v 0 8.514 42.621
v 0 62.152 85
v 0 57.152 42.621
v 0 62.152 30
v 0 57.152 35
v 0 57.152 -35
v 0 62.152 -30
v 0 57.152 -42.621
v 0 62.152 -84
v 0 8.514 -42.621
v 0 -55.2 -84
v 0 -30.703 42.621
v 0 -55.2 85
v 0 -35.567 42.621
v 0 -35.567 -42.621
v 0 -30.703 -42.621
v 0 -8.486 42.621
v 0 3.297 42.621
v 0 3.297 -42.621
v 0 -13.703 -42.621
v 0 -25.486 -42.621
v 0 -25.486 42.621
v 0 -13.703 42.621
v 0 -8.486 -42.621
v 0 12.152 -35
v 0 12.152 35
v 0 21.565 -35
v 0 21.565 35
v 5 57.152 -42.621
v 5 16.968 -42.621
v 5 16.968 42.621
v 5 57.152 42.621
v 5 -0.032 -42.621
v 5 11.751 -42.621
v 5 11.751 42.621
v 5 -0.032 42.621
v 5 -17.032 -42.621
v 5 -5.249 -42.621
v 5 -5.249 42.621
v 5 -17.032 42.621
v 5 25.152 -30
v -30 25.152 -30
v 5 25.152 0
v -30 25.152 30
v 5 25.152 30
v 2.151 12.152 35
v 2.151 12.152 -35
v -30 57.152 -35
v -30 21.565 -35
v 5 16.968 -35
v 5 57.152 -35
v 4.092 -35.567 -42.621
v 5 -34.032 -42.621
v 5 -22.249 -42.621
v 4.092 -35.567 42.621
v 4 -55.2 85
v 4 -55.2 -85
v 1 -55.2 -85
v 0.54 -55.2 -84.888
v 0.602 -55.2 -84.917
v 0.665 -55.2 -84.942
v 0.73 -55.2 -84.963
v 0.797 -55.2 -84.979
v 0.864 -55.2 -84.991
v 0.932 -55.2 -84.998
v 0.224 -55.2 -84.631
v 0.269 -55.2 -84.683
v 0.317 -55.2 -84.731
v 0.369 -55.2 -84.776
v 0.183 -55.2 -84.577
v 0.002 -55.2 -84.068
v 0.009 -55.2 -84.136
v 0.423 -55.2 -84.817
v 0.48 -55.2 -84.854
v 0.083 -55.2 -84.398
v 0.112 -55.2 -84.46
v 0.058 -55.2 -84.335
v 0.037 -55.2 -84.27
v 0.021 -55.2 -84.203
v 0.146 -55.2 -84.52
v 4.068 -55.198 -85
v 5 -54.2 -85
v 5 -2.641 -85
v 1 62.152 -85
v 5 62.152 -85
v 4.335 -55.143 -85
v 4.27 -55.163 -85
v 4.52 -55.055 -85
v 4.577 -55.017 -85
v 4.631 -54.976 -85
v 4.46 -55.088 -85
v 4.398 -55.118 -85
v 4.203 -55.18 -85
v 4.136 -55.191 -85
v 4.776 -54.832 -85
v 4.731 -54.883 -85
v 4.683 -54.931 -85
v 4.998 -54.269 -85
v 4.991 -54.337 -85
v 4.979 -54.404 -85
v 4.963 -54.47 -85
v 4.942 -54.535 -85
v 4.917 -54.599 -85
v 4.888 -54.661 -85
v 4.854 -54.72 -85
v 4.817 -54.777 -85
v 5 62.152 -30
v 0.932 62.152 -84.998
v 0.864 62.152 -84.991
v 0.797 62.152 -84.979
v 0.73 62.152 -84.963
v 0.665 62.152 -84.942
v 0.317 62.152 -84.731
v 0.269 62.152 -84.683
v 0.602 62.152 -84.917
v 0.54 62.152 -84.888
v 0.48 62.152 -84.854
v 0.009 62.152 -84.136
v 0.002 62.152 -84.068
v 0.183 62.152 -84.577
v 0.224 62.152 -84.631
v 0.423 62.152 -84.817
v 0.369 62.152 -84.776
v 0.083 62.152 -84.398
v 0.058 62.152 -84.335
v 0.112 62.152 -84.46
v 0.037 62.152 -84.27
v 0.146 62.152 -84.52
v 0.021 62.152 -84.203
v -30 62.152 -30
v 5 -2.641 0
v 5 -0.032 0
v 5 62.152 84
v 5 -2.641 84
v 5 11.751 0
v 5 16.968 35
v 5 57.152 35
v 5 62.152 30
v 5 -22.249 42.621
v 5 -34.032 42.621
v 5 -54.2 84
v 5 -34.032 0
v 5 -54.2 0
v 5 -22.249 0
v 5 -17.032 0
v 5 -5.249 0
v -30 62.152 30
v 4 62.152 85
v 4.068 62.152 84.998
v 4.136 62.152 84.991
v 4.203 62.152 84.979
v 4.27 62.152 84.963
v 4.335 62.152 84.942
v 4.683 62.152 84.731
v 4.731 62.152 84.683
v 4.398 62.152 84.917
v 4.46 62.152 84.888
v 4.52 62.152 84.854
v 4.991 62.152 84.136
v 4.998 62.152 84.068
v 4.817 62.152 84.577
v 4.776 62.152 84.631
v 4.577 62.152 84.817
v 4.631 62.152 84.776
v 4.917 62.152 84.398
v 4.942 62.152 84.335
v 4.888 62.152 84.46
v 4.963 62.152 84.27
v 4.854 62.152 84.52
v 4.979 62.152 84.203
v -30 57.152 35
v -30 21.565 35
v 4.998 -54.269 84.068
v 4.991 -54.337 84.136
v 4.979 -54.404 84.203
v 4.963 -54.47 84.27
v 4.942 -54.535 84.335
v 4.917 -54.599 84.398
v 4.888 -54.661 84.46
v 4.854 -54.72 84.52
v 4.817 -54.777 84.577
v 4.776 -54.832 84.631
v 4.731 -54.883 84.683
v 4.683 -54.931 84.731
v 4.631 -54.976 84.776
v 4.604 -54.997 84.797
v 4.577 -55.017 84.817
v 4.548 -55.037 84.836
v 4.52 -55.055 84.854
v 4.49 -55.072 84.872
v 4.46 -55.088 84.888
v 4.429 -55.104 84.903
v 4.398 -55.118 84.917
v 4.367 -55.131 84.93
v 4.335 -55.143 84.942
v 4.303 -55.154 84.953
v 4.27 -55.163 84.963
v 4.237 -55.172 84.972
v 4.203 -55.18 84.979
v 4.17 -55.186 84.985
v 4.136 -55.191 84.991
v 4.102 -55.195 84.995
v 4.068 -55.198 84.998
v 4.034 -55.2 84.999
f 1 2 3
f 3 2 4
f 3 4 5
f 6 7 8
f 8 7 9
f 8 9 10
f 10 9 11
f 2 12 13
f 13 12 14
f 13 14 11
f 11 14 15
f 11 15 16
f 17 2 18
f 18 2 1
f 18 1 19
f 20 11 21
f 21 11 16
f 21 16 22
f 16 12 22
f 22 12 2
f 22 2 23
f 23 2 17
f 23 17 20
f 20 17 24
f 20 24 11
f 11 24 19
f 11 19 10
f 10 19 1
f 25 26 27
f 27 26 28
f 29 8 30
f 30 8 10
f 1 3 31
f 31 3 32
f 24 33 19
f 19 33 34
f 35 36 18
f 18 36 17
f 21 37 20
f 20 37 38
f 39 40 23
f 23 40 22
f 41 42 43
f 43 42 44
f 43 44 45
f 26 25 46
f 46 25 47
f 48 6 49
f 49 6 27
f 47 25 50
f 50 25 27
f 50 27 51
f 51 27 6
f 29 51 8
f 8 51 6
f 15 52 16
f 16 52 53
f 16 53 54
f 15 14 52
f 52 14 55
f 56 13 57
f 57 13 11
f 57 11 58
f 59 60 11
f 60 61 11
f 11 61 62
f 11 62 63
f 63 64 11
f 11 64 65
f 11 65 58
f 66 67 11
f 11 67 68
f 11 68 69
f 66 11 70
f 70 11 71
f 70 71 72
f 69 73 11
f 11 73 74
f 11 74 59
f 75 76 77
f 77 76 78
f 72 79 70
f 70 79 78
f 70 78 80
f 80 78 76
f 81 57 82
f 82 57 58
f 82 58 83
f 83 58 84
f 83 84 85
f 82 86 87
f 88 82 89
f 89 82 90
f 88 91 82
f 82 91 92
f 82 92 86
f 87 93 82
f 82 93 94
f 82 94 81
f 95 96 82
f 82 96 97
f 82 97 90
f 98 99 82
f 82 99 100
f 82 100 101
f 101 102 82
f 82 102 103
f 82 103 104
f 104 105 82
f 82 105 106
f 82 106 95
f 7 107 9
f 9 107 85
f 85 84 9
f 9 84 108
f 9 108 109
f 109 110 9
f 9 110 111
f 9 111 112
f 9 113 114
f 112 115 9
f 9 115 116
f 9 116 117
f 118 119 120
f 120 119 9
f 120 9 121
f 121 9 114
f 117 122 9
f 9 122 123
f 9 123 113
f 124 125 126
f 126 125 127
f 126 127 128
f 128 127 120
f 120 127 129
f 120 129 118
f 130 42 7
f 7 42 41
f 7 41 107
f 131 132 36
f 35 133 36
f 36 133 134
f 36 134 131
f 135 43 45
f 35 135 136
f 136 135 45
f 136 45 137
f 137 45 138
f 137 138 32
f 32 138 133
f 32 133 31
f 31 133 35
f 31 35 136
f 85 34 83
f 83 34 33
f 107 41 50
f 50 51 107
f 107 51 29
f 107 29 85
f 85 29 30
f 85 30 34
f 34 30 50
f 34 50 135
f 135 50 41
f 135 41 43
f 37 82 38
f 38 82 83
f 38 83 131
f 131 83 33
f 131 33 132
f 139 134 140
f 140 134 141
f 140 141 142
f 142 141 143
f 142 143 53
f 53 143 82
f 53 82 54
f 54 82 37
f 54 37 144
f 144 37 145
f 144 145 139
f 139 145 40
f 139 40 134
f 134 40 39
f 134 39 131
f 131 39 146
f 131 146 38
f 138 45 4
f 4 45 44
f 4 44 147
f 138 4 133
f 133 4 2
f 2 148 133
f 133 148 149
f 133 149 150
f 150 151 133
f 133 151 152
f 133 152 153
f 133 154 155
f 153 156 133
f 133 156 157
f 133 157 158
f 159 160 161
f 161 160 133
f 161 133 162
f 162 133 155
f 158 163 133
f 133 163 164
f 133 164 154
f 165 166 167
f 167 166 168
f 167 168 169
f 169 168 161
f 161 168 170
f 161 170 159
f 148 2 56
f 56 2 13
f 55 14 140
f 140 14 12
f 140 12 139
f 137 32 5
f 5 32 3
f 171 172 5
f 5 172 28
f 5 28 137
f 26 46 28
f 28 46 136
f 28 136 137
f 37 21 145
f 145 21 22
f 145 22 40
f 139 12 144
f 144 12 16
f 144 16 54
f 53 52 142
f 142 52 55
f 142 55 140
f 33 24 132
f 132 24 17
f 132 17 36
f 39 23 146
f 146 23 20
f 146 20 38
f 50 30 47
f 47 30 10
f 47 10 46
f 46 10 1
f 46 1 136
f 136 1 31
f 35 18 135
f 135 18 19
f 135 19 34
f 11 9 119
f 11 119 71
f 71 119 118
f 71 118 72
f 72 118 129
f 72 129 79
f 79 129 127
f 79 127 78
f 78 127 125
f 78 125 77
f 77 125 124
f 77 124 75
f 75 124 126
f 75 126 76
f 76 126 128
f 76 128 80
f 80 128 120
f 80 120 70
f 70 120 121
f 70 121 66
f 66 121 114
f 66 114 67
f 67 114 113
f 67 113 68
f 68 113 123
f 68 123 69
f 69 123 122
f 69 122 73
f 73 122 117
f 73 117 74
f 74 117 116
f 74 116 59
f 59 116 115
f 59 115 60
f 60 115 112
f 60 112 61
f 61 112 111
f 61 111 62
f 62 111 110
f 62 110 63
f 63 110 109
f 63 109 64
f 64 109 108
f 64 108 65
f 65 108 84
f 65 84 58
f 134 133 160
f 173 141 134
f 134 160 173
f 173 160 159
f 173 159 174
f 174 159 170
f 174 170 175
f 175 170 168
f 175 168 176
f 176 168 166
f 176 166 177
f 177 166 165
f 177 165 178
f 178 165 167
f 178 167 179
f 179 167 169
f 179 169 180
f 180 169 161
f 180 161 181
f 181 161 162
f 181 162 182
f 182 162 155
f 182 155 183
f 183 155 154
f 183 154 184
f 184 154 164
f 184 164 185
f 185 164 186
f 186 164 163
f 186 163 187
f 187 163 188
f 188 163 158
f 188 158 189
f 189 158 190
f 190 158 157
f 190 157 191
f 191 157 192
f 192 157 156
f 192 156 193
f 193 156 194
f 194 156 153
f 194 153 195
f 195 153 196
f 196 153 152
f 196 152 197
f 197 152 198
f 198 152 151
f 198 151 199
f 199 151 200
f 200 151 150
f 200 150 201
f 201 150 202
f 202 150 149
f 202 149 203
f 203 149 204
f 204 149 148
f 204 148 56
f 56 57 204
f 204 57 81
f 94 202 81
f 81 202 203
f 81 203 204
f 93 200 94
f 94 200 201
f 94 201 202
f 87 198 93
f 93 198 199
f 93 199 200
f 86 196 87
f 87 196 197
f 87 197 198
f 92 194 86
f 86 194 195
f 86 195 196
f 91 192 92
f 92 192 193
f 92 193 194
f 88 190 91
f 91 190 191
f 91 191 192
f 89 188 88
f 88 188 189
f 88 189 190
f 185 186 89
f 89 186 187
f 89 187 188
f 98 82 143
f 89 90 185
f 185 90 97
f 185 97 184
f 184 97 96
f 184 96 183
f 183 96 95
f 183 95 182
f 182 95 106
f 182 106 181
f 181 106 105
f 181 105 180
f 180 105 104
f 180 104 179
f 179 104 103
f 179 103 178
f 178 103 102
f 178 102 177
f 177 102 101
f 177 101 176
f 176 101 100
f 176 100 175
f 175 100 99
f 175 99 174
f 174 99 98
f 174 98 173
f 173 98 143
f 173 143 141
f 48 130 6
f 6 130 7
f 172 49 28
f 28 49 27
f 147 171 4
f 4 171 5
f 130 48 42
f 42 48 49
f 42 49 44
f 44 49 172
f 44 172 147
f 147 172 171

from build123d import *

# Parameters (mm, degrees)
BOSS_EXTRU_3_DEPTH             = 5
ESQUISSE6_W                    = 85.242430228
ESQUISSE6_H                    = 5.217313119
R_P_TITION_LIN_AIRE1_COUNT     = 3
R_P_TITION_LIN_AIRE1_PITCH     = 17
R_P_TITION_LIN_AIRE1_COL_COUNT = 2
R_P_TITION_LIN_AIRE1_COL_PITCH = 17
CONG_1_R                       = 1
BOSS_EXTRU_5_DEPTH             = 30


with BuildPart() as part:
    # Esquisse2 → Boss.-Extru.3 (new body)
    with BuildSketch(Plane(origin=(0, 0, 0), x_dir=(0, 0, -1), z_dir=(1, 0, 0))):
        Polygon((85, 62.151677918), (30, 62.151677918), (30, 25.151677918), (0, 25.151677918), (0, 12.151677918), (35, 12.151677918), (35, 57.151677918), (42.621215114, 57.151677918), (42.621215114, -35.567359792), (0, -35.567359792), (0, -55.200485129), (85, -55.200485129), align=None)
    boss_extru_3 = extrude(amount=BOSS_EXTRU_3_DEPTH)

    # Symétrie1: Boss.-Extru.3 across plane
    add(boss_extru_3.mirror(Plane.XY))

    # Balayage5: sweep along a path in Esquisse5
    with BuildLine(Plane.XY.offset(-42.621215114)) as balayage5_path:
        Line((0, -30.703084538), (5, -22.249219394))
    # Esquisse6 → Balayage5 (sweep)
    with BuildSketch(Plane(origin=(0, 0, 0), x_dir=(0, 0, -1), z_dir=(1, 0, 0))):
        with Locations((0, -28.094427979)):
            Rectangle(ESQUISSE6_W, ESQUISSE6_H)
    balayage5 = sweep(path=balayage5_path.line)

    # Répétition linéaire1: Balayage5 ×3
    with Locations(*[(0, i * R_P_TITION_LIN_AIRE1_PITCH, 0) for i in range(1, R_P_TITION_LIN_AIRE1_COUNT)]):
        add(balayage5)

    # Répétition linéaire1 col: Balayage5 ×2
    with Locations(*[(0, -i * R_P_TITION_LIN_AIRE1_COL_PITCH, 0) for i in range(1, R_P_TITION_LIN_AIRE1_COL_COUNT)]):
        add(balayage5)

    # Congé1
    cong_1_edges = [part.edges().sort_by_distance(p)[0] for p in [
        (0, 3.475596394, -85),
        (5, -55.200485129, 0),
        (5, 3.475596394, 85),
    ]]
    fillet(cong_1_edges, radius=CONG_1_R)

    # Esquisse8 → Boss.-Extru.5 (add)
    with BuildSketch(Plane.ZY):
        Polygon((-30, 62.151677918), (-30, 25.151677918), (30, 25.151677918), (30, 62.151677918), (35, 57.151677918), (35, 21.565276585), (-35, 21.565276585), (-35, 57.151677918), align=None)
    extrude(amount=BOSS_EXTRU_5_DEPTH)


solid = part.part
